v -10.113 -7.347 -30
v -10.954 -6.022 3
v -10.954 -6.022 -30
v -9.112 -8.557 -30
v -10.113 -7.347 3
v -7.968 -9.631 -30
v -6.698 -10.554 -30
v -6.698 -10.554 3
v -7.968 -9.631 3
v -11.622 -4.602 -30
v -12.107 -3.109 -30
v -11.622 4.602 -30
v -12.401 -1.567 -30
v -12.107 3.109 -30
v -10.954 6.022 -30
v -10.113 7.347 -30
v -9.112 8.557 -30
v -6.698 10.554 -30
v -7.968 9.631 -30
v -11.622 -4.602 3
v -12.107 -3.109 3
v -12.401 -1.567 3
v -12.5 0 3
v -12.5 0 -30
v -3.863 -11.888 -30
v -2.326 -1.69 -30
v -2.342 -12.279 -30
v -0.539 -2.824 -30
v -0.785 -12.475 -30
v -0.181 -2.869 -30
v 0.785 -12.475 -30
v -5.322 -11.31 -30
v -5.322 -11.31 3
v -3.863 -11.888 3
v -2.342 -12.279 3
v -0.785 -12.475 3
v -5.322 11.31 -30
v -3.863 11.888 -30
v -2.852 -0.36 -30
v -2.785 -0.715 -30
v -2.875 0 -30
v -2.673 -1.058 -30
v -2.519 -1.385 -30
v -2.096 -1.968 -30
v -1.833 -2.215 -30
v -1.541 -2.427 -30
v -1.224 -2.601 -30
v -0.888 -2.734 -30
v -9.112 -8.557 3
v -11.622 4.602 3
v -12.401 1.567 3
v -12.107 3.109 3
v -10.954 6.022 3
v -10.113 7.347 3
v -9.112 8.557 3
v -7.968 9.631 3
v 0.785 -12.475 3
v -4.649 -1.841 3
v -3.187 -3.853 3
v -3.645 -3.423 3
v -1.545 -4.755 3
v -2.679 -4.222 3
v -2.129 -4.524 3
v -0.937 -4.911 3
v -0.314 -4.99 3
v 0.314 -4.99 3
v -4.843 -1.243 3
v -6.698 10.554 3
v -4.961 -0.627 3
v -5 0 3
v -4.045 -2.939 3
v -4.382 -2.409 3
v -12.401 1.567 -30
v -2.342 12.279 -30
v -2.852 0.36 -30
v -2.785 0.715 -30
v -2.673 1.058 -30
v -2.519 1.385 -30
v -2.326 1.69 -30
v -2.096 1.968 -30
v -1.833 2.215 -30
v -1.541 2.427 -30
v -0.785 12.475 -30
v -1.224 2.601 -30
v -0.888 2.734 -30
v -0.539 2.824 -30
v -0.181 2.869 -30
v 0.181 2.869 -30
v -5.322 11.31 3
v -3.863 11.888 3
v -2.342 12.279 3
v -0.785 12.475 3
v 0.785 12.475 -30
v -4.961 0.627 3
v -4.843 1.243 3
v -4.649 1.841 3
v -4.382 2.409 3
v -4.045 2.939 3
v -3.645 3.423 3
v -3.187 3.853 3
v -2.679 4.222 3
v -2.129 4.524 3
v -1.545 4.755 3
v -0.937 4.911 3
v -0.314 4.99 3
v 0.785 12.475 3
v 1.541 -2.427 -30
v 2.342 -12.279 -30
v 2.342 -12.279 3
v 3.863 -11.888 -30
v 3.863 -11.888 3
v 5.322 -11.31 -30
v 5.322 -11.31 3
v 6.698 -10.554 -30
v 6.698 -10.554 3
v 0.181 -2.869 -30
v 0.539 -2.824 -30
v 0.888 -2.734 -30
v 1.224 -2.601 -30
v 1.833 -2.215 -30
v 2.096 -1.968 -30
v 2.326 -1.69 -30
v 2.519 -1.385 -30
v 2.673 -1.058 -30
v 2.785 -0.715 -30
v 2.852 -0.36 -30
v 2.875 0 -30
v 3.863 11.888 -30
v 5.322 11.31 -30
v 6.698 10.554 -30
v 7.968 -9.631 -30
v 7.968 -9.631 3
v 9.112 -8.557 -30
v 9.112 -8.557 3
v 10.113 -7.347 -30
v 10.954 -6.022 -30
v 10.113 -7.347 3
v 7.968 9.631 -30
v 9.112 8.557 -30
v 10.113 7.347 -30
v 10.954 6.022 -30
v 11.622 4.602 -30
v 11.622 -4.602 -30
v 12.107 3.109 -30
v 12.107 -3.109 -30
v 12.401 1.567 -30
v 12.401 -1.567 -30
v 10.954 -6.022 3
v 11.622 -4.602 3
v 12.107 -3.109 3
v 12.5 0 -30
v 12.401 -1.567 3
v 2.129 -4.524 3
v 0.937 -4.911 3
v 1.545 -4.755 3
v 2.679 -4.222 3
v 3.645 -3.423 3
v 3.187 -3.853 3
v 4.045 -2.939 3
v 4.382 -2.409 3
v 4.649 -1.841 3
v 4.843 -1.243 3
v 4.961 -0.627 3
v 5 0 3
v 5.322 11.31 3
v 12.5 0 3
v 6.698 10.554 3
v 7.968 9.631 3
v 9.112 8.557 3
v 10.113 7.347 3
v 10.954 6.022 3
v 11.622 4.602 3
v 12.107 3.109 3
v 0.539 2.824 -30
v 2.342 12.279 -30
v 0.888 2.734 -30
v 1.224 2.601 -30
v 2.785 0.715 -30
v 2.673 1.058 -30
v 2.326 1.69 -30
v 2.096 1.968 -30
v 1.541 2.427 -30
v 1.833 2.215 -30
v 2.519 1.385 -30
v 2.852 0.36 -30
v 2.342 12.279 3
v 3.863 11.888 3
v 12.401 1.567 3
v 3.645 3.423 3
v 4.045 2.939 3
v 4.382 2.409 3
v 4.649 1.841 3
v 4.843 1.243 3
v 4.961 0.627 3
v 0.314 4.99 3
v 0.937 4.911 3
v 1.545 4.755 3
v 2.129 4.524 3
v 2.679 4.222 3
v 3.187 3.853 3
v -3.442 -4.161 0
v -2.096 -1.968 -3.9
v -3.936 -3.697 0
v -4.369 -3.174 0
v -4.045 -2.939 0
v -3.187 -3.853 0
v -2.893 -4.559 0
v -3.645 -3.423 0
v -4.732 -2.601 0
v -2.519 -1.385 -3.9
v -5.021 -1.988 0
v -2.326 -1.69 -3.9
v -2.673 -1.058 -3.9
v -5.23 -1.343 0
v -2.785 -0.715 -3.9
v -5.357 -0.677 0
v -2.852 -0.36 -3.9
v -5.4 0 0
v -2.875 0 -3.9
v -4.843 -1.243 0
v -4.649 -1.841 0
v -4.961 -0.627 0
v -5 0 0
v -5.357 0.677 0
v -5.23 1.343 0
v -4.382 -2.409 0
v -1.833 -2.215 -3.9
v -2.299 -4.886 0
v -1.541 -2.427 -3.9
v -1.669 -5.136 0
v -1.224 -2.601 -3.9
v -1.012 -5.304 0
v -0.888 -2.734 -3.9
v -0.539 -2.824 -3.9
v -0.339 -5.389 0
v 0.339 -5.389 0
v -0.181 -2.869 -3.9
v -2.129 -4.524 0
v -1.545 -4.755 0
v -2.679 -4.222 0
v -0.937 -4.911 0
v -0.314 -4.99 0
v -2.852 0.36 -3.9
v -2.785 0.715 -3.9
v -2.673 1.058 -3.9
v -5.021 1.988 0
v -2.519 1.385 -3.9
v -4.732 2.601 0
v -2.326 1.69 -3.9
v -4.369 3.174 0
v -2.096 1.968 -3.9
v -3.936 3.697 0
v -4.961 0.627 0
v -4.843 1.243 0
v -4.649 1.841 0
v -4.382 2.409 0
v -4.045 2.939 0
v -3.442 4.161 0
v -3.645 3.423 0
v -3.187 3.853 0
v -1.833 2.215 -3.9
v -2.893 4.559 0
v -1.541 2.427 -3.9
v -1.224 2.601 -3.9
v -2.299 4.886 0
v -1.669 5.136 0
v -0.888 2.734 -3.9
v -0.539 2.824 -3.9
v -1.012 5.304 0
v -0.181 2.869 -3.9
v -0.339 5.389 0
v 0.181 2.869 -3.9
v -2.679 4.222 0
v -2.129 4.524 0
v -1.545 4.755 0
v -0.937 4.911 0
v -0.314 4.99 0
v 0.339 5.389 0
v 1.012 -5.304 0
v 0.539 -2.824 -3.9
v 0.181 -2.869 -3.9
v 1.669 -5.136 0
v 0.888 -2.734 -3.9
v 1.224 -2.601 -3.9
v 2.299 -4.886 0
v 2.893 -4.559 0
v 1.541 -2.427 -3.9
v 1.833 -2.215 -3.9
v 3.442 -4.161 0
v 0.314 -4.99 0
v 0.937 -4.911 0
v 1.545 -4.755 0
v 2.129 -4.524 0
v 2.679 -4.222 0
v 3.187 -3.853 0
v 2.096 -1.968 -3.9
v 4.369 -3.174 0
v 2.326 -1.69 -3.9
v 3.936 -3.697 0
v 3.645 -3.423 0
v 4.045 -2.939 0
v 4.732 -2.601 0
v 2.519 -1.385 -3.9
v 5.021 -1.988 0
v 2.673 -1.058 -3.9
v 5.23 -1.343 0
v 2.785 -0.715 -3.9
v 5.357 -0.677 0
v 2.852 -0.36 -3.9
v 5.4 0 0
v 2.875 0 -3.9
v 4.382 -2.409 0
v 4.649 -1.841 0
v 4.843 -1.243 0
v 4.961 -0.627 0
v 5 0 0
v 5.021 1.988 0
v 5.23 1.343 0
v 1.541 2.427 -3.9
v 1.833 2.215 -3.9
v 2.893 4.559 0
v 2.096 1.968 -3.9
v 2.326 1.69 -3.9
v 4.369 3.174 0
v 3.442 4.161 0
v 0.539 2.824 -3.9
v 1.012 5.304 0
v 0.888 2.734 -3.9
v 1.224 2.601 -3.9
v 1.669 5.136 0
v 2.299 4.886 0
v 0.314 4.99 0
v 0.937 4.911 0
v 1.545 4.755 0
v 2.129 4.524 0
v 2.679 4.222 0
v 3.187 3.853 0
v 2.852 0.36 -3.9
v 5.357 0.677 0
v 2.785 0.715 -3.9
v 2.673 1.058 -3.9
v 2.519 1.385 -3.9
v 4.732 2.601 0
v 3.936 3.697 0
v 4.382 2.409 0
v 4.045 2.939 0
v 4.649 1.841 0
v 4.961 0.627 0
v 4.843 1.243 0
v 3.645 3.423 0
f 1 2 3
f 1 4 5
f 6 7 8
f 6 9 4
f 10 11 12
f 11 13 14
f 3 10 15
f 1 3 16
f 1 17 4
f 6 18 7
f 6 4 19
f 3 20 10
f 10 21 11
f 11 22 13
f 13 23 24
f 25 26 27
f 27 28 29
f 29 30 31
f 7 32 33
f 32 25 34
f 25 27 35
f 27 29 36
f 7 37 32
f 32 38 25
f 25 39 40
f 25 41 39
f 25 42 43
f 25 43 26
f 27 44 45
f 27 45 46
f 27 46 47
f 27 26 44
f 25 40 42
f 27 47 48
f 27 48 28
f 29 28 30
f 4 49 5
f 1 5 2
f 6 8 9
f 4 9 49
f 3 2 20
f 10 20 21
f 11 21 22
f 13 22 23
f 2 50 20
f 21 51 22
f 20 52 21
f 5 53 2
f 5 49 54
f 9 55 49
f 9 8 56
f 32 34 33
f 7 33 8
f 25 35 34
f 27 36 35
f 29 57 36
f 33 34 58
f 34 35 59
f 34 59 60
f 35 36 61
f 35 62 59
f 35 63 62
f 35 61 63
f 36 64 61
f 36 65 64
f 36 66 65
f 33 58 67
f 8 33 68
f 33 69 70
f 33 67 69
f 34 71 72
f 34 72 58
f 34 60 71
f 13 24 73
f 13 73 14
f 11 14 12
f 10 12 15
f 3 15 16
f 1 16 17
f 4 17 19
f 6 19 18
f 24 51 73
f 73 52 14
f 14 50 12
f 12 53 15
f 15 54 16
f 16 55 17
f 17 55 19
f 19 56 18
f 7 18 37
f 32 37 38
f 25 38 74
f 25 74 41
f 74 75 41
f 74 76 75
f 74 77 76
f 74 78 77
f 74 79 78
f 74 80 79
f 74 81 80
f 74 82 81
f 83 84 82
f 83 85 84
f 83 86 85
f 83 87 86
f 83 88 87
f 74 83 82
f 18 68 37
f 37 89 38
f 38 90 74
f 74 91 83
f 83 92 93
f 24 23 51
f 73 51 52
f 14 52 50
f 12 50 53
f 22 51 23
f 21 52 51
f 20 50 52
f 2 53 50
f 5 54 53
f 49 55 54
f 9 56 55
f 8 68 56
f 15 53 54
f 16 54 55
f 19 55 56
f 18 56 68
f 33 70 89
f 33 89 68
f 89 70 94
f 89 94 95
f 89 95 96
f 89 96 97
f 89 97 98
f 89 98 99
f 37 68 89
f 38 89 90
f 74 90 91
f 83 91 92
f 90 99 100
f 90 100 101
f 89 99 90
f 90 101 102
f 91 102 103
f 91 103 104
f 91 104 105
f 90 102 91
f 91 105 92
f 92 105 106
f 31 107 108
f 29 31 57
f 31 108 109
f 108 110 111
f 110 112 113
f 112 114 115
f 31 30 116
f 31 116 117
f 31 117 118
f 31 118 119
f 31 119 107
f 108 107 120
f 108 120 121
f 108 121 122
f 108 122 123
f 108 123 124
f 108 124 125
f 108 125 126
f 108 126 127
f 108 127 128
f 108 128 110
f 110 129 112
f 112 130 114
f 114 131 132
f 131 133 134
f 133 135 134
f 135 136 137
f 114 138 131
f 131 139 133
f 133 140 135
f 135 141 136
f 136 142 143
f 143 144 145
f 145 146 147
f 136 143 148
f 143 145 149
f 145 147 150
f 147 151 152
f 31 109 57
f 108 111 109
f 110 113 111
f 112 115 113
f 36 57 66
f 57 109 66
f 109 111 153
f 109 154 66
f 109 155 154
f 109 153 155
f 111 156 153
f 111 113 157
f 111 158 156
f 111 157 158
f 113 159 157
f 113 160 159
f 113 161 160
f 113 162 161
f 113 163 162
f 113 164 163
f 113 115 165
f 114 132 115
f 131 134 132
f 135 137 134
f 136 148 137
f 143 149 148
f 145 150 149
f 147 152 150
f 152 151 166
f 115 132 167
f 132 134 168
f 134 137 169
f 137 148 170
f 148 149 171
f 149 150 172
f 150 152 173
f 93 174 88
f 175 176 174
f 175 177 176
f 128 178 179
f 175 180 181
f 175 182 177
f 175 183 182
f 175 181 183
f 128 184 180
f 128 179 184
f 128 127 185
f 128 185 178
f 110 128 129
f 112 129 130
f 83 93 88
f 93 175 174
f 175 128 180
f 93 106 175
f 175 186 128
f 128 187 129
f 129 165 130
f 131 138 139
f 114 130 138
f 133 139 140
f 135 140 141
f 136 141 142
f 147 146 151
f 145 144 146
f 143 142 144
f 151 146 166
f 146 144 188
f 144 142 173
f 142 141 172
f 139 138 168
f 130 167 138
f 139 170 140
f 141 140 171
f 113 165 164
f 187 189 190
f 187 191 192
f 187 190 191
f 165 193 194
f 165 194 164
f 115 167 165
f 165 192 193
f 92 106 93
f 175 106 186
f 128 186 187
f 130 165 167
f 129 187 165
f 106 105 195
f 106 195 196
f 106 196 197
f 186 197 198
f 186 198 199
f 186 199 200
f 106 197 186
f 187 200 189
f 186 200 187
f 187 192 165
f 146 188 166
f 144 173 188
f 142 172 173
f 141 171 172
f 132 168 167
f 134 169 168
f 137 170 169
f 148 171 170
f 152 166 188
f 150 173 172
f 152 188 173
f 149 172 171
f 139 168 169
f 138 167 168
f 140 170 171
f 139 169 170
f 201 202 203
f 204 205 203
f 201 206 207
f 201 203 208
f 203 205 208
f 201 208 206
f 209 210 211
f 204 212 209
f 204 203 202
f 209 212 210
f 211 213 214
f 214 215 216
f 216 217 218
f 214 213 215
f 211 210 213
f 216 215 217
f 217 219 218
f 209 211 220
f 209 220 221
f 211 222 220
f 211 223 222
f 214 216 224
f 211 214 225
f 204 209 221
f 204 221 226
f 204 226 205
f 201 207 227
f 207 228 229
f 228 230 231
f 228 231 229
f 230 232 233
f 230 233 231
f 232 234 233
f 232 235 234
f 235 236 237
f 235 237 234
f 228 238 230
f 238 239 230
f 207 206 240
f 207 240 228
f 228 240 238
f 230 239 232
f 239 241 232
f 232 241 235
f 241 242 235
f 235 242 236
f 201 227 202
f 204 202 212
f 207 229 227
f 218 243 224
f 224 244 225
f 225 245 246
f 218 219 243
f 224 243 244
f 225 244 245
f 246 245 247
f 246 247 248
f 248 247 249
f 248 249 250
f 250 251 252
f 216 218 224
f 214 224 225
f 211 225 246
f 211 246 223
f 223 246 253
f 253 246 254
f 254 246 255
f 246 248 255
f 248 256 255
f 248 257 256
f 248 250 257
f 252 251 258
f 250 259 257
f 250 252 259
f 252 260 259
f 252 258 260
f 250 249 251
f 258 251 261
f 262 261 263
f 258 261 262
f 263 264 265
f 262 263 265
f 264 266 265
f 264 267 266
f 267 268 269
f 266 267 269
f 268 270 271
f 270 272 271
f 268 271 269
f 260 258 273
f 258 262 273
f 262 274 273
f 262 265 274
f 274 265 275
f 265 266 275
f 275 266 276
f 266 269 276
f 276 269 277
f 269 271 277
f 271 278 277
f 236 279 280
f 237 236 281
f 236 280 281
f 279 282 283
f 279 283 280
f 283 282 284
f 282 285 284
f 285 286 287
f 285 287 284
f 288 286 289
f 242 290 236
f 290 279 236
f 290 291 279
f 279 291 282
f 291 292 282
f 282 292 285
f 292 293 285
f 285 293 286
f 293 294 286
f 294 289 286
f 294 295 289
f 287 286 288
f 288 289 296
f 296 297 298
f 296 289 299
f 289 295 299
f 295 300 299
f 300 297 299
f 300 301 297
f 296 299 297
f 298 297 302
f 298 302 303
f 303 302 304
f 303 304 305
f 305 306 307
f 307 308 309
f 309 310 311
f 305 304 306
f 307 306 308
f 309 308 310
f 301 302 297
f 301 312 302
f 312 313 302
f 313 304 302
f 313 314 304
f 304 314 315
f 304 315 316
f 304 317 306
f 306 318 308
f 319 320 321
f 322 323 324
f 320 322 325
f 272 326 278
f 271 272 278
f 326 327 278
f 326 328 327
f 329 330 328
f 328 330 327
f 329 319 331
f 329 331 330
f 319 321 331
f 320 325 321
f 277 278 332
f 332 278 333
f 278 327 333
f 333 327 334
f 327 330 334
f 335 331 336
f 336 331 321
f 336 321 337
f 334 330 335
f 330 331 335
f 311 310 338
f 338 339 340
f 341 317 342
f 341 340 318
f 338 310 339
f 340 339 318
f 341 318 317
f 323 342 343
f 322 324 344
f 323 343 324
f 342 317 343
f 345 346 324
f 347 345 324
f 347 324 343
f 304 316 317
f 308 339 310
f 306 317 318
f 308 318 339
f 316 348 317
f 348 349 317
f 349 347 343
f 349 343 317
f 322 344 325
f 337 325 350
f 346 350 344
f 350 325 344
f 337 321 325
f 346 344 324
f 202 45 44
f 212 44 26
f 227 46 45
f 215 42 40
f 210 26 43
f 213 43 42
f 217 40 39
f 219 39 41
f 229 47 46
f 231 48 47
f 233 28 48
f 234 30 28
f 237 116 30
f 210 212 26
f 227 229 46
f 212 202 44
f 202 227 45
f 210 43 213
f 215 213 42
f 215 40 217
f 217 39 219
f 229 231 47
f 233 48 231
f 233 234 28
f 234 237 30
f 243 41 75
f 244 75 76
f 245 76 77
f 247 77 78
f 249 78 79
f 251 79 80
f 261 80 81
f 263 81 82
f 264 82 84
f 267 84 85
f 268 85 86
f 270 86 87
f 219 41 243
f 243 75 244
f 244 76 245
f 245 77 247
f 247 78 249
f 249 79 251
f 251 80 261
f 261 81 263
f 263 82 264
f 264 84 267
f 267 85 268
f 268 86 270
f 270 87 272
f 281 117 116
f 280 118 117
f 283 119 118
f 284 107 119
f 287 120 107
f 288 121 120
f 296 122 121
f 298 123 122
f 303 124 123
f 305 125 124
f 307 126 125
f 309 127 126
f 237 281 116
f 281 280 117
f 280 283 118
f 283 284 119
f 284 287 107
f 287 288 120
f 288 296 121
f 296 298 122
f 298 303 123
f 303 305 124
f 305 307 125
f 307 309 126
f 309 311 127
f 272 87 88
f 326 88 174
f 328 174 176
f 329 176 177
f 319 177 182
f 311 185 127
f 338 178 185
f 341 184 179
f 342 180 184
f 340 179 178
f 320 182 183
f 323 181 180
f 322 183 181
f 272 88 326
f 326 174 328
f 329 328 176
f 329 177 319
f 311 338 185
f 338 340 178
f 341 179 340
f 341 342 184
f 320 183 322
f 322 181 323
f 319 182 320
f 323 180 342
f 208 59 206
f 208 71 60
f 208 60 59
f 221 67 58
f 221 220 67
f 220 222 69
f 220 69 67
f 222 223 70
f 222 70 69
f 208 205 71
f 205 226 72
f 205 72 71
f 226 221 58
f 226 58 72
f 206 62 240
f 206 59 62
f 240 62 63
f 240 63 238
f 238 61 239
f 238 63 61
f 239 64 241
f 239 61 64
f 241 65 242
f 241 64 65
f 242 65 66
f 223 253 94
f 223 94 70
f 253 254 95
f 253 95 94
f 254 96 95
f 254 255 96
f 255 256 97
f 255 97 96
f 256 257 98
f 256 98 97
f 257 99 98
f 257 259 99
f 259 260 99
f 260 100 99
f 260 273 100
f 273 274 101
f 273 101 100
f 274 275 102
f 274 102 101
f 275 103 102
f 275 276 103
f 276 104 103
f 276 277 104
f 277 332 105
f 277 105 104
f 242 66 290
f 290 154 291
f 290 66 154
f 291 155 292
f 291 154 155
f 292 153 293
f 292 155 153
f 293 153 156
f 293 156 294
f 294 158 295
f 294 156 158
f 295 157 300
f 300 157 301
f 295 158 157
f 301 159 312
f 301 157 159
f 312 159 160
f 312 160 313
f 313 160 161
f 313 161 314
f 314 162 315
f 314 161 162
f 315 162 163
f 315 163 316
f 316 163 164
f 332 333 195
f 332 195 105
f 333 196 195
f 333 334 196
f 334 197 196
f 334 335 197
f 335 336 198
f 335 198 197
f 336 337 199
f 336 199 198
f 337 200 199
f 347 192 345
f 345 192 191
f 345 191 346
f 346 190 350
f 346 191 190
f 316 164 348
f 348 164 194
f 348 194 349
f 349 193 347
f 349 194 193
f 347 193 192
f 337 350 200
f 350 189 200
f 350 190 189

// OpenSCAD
$fn = 50;

difference() {
	union() {
		translate(v = [0, 0, -30.0]) {
			cylinder(h = 33, r = 12.5);
		}
		#translate(v = [0, 0, -33.0]) {
			cylinder(h = 33, r = 2.875);
		}
	}
	union() {
		translate(v = [0, 0, 0]) {
			rotate(a = [0, 0, 0]) {
				difference() {
					union() {
						translate(v = [0, 0, -33.0]) {
							cylinder(h = 33, r = 2.6);
						}
						translate(v = [0, 0, -3.9]) {
							cylinder(h = 3.9, r1 = 2.875, r2 = 5.4);
						}
						translate(v = [0, 0, -33.0]) {
							cylinder(h = 33, r = 2.875);
						}
						translate(v = [0, 0, -33.0]) {
							cylinder(h = 33, r = 2.6);
						}
					}
					union();
				}
			}
		}
		#cylinder(h = 3, r = 5.0);
	}
}
